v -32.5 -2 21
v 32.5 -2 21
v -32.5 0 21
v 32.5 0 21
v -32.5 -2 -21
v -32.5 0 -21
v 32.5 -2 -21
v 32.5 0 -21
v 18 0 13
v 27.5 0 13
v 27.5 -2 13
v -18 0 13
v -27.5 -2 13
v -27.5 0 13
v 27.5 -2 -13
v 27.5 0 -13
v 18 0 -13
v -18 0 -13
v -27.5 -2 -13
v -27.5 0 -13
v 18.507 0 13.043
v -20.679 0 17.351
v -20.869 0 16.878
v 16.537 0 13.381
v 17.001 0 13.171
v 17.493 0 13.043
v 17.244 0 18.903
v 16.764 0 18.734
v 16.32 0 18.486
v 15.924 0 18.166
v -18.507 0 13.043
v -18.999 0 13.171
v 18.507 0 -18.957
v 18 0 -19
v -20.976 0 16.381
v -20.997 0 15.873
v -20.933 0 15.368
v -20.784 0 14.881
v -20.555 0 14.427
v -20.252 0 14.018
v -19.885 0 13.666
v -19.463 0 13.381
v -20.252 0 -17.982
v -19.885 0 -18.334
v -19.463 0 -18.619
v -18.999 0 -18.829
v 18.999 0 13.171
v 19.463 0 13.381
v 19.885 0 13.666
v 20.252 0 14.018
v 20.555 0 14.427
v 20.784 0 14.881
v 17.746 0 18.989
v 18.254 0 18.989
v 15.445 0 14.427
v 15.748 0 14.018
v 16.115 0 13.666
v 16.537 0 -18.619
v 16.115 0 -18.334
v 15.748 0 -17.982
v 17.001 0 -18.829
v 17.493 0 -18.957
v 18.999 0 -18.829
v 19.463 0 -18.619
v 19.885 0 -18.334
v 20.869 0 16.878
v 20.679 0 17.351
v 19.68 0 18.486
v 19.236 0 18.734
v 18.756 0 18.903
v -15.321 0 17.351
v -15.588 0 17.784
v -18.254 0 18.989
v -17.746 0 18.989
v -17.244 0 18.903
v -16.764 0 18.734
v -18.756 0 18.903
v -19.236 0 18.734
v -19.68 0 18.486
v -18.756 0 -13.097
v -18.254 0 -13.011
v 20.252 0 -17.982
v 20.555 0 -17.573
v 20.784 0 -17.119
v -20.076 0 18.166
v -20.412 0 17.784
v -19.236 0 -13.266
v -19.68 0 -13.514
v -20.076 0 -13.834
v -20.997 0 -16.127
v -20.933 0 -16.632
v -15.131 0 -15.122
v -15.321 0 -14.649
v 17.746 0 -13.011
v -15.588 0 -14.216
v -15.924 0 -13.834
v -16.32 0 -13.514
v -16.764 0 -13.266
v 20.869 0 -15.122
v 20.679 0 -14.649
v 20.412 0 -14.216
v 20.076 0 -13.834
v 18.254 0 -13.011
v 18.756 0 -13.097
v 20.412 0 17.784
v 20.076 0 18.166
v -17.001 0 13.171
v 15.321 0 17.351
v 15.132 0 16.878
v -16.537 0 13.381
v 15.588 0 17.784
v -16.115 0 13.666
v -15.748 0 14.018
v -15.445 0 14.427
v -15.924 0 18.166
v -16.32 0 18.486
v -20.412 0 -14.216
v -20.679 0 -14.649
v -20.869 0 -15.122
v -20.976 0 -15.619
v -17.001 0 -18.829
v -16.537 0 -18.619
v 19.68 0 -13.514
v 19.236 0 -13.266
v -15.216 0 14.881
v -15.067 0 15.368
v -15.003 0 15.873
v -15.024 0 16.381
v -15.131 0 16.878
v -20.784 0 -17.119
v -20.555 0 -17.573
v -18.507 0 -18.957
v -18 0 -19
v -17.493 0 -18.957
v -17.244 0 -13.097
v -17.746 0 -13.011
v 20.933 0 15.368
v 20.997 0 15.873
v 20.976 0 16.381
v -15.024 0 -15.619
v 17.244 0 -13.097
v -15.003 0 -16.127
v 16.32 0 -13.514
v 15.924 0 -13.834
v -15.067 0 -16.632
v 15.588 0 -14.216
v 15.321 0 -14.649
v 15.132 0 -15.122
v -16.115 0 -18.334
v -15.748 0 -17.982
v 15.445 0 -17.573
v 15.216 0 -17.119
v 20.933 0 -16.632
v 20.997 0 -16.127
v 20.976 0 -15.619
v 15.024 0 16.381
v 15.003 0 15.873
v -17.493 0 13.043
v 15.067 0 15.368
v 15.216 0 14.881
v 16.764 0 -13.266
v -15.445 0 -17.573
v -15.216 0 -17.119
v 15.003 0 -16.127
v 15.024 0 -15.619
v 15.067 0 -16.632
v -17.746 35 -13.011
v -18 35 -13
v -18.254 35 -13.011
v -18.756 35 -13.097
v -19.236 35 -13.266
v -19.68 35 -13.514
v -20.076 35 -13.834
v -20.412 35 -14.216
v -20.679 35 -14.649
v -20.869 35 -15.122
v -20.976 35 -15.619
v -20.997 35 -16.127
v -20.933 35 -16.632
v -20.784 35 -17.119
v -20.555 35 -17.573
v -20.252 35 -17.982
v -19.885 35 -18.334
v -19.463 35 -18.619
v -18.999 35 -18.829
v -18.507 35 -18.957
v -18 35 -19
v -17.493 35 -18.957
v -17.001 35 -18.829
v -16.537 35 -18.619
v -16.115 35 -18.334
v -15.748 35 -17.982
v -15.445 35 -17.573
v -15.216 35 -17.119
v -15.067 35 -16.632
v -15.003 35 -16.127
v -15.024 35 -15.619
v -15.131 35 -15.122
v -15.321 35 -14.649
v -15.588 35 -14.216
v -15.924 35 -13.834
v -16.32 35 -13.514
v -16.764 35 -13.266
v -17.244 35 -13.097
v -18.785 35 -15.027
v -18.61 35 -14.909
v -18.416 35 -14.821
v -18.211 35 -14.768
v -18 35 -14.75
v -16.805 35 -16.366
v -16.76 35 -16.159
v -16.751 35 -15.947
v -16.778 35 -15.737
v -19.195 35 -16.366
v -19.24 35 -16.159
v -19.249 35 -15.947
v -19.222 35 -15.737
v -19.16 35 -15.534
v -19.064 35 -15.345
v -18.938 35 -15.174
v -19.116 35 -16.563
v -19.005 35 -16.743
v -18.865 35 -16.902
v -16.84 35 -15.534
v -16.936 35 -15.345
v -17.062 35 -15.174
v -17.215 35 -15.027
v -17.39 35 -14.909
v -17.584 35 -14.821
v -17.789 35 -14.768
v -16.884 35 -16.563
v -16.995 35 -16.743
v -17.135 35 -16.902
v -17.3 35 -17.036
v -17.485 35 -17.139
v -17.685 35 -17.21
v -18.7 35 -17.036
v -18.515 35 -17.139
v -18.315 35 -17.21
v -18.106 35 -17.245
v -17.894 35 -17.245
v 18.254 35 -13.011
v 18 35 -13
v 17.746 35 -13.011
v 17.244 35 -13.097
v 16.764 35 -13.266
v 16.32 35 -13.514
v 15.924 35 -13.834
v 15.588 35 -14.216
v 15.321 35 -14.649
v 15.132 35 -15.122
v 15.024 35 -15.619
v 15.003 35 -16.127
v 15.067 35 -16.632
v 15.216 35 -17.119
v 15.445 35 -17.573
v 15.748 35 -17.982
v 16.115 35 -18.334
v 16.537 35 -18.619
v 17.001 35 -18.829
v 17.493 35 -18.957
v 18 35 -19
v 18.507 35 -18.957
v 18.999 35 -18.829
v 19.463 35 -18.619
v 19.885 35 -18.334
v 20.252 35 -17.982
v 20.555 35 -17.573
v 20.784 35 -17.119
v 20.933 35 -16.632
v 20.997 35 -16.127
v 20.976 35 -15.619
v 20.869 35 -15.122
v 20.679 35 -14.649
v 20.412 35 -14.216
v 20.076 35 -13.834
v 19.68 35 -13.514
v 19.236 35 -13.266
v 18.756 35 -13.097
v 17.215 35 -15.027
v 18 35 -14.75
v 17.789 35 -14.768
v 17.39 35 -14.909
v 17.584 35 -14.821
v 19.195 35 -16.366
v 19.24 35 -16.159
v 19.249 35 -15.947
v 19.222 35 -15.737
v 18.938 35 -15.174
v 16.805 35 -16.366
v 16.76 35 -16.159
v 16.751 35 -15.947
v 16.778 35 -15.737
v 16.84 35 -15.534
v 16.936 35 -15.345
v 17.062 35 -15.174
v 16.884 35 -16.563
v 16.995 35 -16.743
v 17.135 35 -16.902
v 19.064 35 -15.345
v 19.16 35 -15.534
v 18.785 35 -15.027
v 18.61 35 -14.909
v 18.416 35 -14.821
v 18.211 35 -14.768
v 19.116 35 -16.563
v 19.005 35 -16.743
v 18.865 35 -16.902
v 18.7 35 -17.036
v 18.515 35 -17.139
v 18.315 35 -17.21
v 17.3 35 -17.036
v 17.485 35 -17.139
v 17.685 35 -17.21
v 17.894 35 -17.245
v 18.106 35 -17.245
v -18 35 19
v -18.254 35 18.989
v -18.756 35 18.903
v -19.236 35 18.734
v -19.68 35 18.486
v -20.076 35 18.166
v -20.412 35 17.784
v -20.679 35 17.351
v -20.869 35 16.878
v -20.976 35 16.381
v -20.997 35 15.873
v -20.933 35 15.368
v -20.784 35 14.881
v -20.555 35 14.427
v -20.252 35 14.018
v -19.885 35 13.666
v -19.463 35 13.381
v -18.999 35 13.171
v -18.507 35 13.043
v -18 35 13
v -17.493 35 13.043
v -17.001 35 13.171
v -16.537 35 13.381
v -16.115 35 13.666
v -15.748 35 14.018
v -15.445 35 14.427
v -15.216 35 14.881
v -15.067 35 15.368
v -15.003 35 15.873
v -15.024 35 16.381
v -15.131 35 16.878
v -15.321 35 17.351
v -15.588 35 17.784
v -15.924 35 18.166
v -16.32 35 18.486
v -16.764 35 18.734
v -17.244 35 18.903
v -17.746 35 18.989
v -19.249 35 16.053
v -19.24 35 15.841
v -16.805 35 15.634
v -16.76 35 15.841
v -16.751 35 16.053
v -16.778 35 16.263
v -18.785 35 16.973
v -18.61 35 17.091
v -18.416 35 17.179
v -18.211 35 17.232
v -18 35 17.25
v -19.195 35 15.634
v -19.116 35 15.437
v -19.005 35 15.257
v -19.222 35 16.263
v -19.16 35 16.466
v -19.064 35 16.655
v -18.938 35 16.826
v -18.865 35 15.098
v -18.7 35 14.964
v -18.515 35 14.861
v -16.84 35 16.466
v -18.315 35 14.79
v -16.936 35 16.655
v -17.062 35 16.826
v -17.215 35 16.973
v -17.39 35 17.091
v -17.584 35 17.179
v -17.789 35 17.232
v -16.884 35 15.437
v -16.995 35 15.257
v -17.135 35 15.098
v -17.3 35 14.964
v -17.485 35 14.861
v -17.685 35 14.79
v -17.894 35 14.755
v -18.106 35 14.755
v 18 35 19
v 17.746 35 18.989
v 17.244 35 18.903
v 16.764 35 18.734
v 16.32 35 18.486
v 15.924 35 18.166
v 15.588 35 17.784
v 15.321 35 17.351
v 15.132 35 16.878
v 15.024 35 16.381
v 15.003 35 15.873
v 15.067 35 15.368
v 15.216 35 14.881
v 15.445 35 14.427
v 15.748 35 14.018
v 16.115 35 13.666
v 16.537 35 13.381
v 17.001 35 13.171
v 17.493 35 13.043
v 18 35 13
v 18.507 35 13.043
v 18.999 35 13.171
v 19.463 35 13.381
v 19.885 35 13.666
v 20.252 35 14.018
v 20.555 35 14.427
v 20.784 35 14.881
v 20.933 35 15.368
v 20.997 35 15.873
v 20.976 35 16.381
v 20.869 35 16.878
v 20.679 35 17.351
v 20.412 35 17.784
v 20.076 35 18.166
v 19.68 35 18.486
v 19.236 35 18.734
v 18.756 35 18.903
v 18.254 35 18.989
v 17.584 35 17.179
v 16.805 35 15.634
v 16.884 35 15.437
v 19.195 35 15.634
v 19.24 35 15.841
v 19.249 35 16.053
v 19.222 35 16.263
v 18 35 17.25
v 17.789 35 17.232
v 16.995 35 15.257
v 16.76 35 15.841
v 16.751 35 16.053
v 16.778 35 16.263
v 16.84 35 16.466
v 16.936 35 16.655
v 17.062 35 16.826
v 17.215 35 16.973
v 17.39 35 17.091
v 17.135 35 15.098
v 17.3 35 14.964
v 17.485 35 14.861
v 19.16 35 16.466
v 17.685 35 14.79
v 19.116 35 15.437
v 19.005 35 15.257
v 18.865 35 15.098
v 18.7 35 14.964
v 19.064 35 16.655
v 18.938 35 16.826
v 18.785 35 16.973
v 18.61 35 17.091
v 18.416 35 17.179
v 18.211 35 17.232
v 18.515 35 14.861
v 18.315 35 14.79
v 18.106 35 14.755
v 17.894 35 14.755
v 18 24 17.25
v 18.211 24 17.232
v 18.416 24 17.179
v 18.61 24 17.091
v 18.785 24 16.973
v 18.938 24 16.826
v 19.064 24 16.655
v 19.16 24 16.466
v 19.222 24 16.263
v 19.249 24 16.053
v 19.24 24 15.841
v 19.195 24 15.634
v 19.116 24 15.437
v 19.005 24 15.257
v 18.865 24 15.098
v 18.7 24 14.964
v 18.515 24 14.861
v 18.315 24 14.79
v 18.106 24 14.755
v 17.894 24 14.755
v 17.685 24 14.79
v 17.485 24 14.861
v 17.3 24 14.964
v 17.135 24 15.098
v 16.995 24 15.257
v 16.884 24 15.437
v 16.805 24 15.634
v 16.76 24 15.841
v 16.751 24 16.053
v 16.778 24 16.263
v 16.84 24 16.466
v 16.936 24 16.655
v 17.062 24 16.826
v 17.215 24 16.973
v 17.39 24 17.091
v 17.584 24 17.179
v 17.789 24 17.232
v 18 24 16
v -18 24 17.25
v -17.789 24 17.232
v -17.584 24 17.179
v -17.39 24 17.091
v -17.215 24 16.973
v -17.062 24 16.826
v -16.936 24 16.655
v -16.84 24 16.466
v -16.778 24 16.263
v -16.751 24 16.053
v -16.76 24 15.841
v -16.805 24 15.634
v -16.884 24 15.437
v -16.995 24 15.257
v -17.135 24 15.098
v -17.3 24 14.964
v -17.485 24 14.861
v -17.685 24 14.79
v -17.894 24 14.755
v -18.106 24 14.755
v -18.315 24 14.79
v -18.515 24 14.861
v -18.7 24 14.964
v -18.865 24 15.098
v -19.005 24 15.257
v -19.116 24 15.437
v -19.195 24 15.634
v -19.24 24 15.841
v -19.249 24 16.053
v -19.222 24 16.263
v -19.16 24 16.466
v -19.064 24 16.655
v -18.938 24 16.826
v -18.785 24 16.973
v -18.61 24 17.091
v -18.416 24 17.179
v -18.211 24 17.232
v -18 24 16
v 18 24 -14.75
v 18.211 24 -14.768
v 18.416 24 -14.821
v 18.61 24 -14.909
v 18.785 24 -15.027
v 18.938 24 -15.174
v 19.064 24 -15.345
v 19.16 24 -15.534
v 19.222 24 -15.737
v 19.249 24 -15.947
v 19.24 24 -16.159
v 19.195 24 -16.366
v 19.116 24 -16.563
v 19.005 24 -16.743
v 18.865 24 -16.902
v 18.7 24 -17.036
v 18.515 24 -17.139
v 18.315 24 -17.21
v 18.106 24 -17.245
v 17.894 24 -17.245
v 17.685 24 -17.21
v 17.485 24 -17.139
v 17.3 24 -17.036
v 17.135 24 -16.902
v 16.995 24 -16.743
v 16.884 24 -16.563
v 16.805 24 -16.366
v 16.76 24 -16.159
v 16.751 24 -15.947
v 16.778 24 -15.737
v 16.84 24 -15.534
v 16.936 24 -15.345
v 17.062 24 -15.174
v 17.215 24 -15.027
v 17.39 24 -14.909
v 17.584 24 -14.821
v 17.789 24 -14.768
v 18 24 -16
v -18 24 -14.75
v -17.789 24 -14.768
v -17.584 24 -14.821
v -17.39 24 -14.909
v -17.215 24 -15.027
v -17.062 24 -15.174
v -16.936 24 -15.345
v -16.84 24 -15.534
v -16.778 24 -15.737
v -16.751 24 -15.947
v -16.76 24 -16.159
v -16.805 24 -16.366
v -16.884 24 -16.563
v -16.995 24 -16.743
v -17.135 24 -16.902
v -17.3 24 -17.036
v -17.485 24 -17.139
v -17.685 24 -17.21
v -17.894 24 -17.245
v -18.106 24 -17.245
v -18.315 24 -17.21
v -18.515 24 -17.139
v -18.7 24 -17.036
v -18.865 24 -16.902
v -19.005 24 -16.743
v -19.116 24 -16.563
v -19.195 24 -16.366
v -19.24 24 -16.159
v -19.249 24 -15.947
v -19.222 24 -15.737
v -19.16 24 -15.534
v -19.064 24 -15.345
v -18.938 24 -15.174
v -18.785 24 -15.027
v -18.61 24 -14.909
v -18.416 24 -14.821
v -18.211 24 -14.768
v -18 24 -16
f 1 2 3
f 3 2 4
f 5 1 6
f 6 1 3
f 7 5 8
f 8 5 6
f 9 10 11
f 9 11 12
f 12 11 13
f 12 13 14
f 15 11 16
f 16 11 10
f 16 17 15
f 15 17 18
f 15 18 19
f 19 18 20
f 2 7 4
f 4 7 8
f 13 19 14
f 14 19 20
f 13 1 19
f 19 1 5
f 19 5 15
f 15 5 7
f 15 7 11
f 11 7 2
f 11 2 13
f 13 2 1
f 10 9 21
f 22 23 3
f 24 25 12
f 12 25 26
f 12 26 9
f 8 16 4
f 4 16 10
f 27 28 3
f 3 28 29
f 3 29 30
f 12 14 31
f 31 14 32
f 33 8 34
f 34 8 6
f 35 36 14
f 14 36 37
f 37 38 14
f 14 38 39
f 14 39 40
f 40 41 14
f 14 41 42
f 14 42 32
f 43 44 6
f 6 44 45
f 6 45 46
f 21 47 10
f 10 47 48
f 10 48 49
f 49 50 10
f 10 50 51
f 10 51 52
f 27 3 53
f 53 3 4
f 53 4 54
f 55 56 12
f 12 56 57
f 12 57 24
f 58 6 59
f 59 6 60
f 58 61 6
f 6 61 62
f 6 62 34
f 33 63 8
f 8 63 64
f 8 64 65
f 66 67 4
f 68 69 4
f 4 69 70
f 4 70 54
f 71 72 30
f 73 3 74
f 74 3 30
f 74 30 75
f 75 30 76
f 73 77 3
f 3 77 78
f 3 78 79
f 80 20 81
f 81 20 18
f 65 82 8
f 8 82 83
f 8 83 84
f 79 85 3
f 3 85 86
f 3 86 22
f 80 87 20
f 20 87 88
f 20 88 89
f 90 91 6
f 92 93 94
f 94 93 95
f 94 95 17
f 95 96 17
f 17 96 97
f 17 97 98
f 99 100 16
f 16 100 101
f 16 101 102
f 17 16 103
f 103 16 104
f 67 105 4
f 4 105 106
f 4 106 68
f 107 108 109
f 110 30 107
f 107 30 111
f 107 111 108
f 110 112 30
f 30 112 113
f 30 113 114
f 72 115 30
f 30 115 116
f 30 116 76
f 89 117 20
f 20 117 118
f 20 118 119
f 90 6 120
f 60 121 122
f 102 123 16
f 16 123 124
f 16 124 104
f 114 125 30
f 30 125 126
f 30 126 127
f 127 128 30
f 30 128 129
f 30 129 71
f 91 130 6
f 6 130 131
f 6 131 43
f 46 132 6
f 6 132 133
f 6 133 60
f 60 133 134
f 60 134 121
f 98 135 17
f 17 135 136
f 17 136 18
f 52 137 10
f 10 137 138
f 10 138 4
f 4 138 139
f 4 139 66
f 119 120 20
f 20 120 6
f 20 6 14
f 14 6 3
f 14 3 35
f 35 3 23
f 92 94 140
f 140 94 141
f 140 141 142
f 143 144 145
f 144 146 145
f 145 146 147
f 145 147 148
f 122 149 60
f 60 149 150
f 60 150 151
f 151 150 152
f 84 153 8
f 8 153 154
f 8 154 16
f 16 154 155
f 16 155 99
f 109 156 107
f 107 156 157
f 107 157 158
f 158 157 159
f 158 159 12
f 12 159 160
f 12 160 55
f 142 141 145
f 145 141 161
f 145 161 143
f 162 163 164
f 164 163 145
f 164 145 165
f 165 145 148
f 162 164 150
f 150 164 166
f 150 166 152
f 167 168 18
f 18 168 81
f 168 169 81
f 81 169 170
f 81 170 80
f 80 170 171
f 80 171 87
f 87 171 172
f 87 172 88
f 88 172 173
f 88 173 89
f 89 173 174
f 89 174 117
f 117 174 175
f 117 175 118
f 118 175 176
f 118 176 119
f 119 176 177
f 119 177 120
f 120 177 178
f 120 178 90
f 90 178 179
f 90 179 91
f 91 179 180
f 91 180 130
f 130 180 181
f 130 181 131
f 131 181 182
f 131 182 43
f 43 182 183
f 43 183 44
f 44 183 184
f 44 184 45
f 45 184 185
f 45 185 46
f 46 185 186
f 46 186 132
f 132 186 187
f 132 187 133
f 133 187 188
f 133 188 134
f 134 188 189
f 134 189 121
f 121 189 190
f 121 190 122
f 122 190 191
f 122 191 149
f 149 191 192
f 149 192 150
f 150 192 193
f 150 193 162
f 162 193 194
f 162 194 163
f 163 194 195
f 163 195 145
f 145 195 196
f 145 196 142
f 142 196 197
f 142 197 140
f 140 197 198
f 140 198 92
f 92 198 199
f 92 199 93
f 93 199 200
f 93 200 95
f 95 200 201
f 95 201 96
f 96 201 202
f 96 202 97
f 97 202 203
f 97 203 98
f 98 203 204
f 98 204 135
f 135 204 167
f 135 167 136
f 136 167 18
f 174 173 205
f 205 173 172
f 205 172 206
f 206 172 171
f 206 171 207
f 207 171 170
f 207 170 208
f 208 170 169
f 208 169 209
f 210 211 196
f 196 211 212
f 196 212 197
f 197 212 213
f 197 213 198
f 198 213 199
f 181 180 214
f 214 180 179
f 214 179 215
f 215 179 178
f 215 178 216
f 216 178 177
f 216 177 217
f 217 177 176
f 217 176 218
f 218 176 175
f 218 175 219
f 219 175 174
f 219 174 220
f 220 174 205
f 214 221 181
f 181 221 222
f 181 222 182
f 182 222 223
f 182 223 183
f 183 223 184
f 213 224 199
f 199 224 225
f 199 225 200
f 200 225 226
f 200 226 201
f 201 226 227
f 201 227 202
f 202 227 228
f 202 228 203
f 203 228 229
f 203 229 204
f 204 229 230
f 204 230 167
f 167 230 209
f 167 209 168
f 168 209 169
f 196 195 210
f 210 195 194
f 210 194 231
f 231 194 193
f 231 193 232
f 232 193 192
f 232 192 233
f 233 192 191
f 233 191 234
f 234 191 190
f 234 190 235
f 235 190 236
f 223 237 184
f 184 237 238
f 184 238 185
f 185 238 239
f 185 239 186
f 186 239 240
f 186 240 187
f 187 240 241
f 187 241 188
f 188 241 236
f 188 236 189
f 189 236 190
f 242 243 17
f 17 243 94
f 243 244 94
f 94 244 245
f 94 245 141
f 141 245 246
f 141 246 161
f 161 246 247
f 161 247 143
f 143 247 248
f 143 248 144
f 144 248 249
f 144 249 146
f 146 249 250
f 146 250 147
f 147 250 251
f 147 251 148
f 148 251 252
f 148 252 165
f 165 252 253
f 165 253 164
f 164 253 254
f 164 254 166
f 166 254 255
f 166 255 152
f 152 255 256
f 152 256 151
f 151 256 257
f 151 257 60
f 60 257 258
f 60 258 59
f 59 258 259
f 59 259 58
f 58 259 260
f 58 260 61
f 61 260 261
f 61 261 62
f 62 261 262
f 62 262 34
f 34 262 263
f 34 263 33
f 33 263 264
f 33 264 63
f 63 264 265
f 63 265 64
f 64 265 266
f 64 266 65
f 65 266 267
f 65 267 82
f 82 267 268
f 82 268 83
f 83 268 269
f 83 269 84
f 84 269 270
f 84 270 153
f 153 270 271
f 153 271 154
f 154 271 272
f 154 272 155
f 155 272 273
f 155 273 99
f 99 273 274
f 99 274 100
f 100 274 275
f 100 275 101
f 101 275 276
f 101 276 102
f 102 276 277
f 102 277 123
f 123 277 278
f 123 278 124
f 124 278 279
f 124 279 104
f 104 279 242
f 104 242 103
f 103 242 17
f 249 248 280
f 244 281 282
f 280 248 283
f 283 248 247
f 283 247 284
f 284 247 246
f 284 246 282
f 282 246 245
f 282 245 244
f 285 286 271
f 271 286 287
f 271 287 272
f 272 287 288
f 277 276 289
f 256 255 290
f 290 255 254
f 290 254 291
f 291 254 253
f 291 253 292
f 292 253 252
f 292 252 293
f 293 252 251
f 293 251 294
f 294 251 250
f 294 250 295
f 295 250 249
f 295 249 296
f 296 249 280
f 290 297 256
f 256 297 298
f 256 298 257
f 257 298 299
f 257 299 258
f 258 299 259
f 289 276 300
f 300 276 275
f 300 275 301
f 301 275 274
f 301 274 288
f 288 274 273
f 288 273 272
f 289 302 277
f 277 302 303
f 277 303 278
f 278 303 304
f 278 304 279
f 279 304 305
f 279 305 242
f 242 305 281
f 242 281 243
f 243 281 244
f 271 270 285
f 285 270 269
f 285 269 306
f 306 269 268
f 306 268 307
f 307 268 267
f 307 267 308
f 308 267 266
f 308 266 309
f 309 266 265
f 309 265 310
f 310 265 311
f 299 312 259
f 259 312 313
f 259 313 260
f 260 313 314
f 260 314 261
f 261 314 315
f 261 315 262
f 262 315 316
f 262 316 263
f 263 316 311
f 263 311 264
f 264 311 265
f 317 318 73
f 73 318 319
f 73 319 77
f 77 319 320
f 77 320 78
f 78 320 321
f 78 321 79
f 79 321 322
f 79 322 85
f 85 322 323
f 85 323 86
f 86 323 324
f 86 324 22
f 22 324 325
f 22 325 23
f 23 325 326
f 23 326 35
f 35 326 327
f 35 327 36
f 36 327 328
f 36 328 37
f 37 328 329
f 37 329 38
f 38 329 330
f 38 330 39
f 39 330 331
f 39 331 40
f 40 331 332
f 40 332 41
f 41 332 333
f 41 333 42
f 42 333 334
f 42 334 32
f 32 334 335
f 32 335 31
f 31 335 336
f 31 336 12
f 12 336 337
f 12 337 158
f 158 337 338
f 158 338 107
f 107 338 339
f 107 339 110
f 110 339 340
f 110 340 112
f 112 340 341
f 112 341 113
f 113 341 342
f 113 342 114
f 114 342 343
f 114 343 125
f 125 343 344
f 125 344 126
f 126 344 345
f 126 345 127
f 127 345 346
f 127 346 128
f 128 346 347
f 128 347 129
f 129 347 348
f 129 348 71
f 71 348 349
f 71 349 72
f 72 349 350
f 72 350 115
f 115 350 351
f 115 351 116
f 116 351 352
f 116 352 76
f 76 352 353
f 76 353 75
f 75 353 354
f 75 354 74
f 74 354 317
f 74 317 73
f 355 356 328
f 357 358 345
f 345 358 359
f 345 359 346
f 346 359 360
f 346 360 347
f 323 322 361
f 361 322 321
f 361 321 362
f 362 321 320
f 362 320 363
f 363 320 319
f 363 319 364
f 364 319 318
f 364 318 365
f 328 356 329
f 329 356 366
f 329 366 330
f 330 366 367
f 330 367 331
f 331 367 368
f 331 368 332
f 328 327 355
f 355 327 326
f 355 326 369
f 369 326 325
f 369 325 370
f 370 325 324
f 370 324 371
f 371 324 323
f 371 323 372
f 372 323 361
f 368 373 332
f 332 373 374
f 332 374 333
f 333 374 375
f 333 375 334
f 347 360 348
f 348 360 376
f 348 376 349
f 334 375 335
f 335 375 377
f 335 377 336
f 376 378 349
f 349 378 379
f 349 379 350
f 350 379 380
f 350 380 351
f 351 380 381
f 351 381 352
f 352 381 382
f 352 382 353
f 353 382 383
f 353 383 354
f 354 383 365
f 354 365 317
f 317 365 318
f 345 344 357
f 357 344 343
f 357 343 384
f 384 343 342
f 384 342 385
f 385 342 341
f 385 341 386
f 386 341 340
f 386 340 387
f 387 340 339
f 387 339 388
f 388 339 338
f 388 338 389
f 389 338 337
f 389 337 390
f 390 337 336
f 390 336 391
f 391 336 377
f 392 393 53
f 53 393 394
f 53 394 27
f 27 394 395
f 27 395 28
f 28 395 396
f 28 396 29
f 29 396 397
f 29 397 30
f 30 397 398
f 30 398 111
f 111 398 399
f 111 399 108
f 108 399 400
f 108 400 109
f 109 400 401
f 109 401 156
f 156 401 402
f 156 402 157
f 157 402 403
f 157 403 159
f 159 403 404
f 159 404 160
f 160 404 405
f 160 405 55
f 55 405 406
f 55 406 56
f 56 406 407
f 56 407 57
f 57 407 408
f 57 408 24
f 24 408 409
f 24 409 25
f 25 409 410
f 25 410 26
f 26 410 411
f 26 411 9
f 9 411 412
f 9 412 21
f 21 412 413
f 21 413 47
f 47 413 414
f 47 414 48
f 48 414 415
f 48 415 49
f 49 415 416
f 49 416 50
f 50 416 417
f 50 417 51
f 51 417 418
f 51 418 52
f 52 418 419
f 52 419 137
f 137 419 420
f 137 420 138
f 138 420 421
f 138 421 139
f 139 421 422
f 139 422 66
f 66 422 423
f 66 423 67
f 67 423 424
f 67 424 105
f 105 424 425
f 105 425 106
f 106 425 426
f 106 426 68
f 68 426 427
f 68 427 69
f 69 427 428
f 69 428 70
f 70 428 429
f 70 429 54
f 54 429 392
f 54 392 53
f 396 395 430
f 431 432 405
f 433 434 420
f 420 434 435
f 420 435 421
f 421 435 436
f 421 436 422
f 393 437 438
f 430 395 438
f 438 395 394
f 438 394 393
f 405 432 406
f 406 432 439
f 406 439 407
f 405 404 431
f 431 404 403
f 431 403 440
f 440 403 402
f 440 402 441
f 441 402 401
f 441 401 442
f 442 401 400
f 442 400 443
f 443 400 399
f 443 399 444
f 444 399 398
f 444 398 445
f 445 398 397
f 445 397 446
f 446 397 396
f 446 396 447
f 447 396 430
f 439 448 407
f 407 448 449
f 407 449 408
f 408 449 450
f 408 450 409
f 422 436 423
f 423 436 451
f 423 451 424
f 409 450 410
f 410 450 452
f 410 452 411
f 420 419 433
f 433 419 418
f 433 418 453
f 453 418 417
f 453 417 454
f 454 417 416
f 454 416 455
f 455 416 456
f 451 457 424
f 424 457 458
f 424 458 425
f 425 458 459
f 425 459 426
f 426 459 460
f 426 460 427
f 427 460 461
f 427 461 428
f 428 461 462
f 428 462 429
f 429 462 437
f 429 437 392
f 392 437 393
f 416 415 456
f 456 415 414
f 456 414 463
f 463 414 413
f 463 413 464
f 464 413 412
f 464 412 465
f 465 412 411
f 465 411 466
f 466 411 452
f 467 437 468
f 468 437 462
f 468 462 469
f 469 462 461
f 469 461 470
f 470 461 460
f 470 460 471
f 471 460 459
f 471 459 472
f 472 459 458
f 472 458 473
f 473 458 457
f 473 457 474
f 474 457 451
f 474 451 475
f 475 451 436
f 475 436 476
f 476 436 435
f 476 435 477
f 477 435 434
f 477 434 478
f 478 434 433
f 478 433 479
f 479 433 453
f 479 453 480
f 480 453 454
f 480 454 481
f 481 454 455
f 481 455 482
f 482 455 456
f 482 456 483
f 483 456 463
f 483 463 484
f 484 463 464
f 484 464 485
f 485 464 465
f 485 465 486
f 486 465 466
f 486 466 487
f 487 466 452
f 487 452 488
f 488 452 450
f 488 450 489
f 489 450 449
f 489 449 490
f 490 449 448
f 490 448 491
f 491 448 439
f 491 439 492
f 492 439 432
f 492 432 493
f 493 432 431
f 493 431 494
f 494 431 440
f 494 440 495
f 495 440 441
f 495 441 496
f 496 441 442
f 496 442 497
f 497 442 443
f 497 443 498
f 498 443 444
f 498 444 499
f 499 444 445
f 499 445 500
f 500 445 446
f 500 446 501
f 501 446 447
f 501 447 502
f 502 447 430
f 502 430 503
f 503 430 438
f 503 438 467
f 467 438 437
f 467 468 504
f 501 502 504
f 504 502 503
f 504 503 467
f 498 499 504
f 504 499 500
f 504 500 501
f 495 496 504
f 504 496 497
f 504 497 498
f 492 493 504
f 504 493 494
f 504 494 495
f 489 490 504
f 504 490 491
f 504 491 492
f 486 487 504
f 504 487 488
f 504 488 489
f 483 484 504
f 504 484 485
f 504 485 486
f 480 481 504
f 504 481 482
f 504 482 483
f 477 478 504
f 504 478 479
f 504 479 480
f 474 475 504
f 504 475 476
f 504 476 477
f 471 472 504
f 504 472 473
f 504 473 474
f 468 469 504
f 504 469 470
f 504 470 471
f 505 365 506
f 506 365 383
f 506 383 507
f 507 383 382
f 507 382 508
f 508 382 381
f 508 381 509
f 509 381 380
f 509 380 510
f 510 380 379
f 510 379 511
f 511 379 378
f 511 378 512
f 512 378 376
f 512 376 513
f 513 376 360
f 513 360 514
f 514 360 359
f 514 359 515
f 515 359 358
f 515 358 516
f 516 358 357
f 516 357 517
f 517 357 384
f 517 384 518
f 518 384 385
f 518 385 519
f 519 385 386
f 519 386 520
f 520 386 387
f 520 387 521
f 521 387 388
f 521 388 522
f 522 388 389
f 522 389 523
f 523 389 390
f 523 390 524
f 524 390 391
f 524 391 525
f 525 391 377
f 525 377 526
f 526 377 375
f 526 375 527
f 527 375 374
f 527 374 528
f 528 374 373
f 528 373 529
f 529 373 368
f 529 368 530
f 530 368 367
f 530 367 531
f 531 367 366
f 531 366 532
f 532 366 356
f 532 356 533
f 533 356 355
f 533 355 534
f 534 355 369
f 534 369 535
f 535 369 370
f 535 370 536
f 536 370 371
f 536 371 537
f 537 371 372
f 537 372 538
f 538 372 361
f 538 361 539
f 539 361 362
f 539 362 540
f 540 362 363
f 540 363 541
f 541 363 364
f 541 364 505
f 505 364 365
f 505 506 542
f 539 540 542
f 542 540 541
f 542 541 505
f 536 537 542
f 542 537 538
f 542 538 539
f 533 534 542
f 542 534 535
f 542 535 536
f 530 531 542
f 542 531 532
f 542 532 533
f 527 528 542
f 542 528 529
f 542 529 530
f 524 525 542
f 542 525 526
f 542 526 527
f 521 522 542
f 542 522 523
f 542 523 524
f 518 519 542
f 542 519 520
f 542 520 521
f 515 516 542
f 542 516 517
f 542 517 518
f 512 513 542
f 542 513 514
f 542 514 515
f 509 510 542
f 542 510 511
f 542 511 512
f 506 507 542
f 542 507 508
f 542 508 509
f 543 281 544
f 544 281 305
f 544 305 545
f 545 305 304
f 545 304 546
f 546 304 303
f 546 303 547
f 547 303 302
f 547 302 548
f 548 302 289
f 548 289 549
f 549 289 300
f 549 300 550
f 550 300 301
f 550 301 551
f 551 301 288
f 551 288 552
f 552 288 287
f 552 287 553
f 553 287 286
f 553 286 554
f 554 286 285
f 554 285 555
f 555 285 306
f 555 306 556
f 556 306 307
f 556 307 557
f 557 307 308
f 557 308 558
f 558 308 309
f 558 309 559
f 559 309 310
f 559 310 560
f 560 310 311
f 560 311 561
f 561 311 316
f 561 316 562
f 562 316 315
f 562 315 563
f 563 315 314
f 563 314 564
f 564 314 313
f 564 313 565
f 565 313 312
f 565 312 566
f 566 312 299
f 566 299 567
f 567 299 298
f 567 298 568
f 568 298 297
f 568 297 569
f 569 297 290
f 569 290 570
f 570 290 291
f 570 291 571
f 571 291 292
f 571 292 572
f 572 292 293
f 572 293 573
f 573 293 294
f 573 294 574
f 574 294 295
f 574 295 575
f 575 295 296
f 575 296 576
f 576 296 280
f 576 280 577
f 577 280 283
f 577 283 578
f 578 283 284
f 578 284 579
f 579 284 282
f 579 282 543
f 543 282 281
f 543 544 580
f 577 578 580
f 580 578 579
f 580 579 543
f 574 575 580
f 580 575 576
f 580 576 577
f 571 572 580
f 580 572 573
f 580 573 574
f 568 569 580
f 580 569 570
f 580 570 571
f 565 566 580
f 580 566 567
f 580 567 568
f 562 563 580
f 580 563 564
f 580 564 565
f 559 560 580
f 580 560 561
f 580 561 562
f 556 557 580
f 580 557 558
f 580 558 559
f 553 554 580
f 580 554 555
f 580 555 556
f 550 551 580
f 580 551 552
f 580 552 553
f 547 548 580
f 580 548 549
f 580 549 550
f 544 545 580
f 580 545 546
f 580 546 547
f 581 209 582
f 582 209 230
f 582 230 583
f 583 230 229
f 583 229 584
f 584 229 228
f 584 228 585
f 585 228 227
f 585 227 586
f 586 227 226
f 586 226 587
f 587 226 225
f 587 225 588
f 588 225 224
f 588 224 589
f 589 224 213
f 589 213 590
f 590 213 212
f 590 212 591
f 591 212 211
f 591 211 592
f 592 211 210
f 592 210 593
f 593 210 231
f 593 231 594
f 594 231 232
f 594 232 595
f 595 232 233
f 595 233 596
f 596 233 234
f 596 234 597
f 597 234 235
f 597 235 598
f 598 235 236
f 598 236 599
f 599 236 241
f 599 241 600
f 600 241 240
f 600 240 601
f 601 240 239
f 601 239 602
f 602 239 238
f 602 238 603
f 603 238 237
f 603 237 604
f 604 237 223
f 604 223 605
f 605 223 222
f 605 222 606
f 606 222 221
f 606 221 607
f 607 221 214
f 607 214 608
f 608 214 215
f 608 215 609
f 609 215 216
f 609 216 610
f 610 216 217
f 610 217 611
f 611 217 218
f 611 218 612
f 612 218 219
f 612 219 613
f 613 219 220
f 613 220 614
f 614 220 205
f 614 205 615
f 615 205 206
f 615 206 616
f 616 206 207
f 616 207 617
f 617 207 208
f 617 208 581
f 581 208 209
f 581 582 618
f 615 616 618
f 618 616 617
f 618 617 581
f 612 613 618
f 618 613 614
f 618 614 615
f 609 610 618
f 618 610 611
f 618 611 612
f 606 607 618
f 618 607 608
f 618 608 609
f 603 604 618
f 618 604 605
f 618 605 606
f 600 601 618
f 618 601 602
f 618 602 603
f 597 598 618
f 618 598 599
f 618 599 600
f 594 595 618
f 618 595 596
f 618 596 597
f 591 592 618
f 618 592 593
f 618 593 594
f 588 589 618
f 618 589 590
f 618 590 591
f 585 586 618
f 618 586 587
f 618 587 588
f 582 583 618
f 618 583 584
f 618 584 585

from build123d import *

# Parameters (mm, degrees)
SKETCH1_W           = 65
SKETCH1_H           = 42
SKETCH1_W_2         = 55
SKETCH1_H_2         = 26
BOSS_EXTRUDE2_DEPTH = 2
SKETCH1_3_R         = 3
SKETCH1_3_R_2       = 1.25
BOSS_EXTRUDE3_DEPTH = 35
CUT_EXTRUDE1_START  = 35
SKETCH1_4_R         = 1.25
CUT_EXTRUDE1_DEPTH  = 11


with BuildPart() as part:
    # Sketch1 → Boss-Extrude2 (new body)
    with BuildSketch(Plane(origin=(0, 0, 0), x_dir=(1, 0, 0), z_dir=(0, 1, 0))):
        Rectangle(SKETCH1_W, SKETCH1_H)
        Rectangle(SKETCH1_W_2, SKETCH1_H_2, mode=Mode.SUBTRACT)
    extrude(amount=-BOSS_EXTRUDE2_DEPTH)

    # Sketch1<3> → Boss-Extrude3 (add)
    with BuildSketch(Plane(origin=(0, 0, 0), x_dir=(1, 0, 0), z_dir=(0, 1, 0))):
        with Locations(Location((-18, 16, 0), (0, 0, 270))):
            Circle(SKETCH1_3_R)
        with Locations((-18, 16)):
            Circle(SKETCH1_3_R_2, mode=Mode.SUBTRACT)
        with Locations((-18, 16)):
            Circle(SKETCH1_3_R_2)
        with Locations(Location((18, 16, 0), (0, 0, 270))):
            Circle(SKETCH1_3_R)
        with Locations((18, 16)):
            Circle(SKETCH1_3_R_2, mode=Mode.SUBTRACT)
        with Locations((18, 16)):
            Circle(SKETCH1_3_R_2)
        with Locations(Location((18, -16, 0), (0, 0, 90))):
            Circle(SKETCH1_3_R)
        with Locations((18, -16)):
            Circle(SKETCH1_3_R_2, mode=Mode.SUBTRACT)
        with Locations(Location((-18, -16, 0), (0, 0, 90))):
            Circle(SKETCH1_3_R)
        with Locations((-18, -16)):
            Circle(SKETCH1_3_R_2, mode=Mode.SUBTRACT)
        with Locations((-18, -16)):
            Circle(SKETCH1_3_R_2)
        with Locations((18, -16)):
            Circle(SKETCH1_3_R_2)
    extrude(amount=BOSS_EXTRUDE3_DEPTH)

    # Sketch1<4> → Cut-Extrude1 (cut)
    with BuildSketch(Plane(origin=(0, 0, 0), x_dir=(1, 0, 0), z_dir=(0, 1, 0)).offset(CUT_EXTRUDE1_START)):
        with Locations(Location((-18, 16, 0), (0, 0, 270))):
            Circle(SKETCH1_4_R)
        with Locations(Location((18, 16, 0), (0, 0, 270))):
            Circle(SKETCH1_4_R)
        with Locations(Location((18, -16, 0), (0, 0, 270))):
            Circle(SKETCH1_4_R)
        with Locations(Location((-18, -16, 0), (0, 0, 270))):
            Circle(SKETCH1_4_R)
    extrude(amount=-CUT_EXTRUDE1_DEPTH, mode=Mode.SUBTRACT)


solid = part.part
